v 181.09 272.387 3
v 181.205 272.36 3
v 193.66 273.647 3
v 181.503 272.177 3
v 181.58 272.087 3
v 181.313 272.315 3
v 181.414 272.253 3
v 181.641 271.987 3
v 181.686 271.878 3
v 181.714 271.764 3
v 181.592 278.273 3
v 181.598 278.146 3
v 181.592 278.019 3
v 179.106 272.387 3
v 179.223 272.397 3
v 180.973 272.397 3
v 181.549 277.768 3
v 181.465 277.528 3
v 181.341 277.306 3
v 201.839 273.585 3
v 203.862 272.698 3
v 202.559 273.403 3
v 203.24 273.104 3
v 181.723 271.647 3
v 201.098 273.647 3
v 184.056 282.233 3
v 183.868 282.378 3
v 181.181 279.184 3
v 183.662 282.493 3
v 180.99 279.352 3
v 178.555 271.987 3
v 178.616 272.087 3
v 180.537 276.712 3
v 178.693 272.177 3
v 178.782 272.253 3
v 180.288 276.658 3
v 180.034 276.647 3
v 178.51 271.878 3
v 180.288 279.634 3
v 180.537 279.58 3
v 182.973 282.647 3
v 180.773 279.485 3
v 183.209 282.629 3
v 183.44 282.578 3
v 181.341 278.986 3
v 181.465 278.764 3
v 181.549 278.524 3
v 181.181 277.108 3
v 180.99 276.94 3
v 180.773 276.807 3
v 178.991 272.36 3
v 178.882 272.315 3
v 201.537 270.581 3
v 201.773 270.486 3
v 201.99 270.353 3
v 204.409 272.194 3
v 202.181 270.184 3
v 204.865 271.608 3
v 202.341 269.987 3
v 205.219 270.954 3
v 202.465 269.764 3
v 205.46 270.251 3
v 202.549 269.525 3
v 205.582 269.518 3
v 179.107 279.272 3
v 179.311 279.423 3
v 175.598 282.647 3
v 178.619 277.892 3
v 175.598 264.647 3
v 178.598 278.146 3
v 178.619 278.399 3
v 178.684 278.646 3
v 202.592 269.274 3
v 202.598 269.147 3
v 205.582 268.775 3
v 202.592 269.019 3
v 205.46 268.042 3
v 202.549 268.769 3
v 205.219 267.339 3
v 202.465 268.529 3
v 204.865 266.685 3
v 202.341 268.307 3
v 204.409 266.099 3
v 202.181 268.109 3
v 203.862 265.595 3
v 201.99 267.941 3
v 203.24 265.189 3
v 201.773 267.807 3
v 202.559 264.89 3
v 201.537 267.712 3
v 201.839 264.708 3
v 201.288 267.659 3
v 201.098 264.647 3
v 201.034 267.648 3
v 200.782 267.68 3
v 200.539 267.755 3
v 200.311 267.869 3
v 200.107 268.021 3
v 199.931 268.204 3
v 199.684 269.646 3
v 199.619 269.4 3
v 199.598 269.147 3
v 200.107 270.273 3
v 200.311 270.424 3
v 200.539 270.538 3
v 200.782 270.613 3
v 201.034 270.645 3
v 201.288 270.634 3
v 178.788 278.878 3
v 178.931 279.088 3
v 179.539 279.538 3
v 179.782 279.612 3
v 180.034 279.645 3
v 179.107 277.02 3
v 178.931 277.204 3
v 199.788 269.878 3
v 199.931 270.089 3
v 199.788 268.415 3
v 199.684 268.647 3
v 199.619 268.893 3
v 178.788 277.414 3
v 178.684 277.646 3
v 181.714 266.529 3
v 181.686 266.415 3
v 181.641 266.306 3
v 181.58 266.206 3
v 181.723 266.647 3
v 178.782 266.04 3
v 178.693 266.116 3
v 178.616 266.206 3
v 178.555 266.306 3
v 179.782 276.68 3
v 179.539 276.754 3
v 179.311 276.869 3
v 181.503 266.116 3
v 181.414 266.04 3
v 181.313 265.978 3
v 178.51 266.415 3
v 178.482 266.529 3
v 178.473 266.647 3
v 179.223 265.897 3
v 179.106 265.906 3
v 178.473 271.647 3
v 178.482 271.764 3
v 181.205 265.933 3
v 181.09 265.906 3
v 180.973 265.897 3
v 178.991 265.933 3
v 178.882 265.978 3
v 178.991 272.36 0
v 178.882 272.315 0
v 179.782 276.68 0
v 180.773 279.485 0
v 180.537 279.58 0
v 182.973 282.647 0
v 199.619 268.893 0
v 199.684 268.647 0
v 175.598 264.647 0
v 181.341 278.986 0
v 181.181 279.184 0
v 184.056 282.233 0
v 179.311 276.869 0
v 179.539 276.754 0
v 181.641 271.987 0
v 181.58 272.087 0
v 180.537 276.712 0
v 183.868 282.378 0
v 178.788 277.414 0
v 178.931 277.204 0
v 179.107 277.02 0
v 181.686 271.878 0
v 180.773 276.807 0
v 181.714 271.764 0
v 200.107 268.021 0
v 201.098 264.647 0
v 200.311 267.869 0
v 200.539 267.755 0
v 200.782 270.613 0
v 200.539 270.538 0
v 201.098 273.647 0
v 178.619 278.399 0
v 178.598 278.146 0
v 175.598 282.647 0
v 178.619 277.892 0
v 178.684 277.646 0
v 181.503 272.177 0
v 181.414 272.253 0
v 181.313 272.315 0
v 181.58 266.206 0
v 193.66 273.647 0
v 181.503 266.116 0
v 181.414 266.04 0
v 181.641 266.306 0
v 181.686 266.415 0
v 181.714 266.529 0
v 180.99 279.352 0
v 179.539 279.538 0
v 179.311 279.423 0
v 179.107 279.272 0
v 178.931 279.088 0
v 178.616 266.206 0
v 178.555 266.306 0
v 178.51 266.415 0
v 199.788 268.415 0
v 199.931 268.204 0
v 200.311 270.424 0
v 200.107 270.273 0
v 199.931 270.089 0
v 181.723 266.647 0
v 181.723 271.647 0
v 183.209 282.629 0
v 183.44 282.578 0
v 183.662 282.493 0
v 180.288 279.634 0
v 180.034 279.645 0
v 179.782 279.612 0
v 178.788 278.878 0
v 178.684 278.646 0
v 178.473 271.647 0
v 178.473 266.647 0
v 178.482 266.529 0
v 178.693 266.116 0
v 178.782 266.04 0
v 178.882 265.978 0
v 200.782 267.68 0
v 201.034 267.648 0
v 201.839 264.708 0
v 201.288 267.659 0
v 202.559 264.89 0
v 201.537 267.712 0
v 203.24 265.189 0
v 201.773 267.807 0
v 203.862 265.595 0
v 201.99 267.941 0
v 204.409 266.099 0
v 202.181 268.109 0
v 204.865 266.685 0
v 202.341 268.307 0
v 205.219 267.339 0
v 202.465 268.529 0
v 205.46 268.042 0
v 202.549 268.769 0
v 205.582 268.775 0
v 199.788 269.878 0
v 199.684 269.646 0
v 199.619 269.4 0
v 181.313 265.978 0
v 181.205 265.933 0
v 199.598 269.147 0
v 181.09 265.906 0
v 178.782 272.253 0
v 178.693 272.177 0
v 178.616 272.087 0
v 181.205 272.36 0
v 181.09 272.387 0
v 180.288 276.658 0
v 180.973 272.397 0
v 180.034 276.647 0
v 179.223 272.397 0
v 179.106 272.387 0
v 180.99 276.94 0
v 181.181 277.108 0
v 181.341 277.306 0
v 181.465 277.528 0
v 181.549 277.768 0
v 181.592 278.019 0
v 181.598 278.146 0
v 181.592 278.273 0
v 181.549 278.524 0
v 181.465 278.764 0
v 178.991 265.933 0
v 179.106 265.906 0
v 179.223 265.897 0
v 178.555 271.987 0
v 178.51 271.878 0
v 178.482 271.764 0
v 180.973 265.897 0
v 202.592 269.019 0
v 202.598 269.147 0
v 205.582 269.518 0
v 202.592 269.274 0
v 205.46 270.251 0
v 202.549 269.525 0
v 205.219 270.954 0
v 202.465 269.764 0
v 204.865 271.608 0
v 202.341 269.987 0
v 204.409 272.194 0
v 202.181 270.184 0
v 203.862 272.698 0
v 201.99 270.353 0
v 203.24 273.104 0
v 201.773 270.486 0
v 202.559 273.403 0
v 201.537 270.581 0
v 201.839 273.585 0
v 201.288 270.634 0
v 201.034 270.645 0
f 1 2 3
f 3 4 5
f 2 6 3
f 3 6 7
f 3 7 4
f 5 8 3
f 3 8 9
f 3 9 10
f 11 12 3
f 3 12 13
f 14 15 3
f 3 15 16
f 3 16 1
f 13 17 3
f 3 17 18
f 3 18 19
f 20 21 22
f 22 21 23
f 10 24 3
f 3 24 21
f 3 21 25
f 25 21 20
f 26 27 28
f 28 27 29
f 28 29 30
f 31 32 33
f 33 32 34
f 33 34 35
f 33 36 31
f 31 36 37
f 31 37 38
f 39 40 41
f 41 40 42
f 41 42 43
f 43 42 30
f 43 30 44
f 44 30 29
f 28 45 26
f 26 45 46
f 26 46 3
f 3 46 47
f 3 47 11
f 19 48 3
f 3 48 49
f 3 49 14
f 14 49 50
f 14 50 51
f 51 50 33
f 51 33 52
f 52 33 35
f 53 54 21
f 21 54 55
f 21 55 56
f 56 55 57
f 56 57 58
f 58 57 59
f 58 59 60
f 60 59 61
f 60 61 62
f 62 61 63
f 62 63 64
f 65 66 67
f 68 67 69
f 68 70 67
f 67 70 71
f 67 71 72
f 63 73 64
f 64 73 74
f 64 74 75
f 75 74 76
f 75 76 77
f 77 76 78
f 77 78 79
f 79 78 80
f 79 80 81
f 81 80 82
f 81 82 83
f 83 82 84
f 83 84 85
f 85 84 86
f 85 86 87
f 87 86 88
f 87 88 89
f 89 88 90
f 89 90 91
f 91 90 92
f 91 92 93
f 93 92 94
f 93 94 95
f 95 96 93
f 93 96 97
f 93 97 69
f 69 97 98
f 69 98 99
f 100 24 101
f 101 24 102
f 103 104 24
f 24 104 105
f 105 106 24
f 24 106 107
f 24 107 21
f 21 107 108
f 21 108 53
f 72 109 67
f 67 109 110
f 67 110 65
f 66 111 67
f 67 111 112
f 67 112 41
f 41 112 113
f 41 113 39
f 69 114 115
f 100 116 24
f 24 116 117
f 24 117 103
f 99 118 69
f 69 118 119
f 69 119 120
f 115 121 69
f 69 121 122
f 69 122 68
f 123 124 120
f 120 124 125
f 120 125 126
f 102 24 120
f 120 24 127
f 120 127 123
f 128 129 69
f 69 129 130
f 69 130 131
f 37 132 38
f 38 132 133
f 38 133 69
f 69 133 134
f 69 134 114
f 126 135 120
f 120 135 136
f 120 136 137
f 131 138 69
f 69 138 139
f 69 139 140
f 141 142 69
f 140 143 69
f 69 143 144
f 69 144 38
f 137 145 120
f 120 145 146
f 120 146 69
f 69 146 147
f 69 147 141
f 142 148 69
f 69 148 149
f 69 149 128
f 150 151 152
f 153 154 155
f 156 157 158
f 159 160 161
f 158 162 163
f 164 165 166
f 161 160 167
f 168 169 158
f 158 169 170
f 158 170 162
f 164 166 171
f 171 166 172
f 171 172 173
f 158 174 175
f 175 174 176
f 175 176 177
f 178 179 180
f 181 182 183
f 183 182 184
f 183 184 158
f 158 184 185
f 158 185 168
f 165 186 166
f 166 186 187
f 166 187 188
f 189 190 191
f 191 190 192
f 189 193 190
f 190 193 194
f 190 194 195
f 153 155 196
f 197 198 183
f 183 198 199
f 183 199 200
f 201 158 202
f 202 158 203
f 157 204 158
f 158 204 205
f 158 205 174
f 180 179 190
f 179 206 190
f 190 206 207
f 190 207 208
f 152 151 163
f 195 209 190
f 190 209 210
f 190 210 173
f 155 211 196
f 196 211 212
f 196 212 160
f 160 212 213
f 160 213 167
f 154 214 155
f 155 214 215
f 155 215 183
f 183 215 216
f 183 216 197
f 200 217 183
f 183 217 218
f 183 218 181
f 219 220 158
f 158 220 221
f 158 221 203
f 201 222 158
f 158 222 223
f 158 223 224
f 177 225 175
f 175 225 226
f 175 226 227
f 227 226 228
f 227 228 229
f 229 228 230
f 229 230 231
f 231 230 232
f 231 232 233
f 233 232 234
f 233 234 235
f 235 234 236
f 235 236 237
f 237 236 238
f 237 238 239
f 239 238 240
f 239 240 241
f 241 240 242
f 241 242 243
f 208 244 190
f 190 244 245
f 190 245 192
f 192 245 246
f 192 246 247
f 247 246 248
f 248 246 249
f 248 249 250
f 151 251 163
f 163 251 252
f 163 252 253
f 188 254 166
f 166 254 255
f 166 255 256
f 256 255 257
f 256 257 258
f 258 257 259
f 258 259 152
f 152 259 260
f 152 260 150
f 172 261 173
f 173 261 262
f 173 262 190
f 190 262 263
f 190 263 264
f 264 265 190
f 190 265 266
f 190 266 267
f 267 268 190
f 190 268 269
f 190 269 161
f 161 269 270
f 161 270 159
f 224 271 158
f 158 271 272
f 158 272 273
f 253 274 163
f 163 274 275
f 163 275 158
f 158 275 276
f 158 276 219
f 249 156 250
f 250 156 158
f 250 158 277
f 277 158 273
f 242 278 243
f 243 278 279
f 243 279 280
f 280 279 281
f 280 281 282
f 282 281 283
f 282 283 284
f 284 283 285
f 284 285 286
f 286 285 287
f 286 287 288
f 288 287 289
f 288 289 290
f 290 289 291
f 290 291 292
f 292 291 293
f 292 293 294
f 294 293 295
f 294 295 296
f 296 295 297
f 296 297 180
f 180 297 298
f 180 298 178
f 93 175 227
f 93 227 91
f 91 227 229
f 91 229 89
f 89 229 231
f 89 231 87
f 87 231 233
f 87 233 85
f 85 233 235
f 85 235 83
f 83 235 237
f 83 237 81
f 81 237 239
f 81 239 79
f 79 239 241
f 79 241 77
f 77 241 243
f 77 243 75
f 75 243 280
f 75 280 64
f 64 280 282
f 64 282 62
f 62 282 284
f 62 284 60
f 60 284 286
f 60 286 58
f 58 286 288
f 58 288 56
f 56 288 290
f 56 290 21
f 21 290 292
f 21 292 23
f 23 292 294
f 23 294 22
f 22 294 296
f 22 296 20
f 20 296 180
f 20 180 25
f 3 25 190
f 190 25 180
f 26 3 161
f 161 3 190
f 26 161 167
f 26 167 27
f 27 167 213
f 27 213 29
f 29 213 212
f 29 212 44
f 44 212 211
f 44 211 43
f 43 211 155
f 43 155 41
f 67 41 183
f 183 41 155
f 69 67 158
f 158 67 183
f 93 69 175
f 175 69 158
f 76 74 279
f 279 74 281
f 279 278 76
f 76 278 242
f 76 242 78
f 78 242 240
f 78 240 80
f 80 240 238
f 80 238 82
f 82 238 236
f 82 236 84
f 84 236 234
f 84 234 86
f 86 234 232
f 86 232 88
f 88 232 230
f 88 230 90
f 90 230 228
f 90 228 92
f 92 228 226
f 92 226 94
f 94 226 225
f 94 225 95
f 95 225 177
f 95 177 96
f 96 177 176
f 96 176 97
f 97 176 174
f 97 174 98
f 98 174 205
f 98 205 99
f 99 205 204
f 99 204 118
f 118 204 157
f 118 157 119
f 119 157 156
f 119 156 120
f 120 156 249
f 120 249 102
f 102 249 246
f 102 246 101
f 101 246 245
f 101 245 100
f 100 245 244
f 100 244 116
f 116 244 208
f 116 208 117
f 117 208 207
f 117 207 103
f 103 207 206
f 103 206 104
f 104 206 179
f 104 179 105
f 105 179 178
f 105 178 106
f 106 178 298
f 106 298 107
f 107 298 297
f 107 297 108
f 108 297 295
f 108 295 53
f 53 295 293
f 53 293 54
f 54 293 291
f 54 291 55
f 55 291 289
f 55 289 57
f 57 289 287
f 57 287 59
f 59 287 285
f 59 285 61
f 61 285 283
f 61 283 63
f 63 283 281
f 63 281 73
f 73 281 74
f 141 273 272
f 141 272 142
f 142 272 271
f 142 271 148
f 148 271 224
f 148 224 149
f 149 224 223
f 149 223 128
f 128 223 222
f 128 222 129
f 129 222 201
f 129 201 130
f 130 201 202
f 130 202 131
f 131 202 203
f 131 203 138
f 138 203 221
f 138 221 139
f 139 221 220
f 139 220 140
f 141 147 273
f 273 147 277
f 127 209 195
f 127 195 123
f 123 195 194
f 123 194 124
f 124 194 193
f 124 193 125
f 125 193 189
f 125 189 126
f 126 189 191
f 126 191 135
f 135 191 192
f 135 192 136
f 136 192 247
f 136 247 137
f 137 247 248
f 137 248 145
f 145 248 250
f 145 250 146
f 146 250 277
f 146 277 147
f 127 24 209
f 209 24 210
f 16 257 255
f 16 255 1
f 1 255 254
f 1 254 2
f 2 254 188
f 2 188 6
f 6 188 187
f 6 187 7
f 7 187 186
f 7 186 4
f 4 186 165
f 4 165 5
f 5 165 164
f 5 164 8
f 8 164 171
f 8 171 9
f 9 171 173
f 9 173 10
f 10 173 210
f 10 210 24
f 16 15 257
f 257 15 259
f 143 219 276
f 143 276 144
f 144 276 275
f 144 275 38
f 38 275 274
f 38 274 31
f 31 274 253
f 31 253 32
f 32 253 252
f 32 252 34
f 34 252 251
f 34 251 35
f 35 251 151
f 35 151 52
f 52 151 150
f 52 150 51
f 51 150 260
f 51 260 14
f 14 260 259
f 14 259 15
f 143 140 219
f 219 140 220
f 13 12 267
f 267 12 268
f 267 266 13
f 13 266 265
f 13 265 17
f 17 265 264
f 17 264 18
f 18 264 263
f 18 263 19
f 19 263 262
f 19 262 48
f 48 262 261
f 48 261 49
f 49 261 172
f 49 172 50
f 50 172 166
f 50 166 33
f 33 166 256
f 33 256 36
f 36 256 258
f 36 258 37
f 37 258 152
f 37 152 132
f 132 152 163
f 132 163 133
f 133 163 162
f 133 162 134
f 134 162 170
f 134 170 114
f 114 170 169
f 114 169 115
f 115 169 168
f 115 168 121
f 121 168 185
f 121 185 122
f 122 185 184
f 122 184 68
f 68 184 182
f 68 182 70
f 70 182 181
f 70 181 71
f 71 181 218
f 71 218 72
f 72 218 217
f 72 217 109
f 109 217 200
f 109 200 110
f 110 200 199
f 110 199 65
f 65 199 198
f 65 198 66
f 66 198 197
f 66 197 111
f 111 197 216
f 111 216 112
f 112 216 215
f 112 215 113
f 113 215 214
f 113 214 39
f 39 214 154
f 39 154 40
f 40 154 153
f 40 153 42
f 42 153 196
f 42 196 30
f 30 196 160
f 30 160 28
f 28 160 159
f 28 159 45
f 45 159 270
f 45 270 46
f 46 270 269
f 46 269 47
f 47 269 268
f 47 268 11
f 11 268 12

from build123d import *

# Parameters (mm, degrees)
MODEL_R                 = 1.5
SALIENTE_EXTRUIR1_DEPTH = 3


with BuildPart() as part:
    # Model → Saliente-Extruir1 (new body)
    with BuildSketch(Plane.XY):
        with BuildLine():
            Line((182.972853309, 282.646547335), (175.597853309, 282.646547335))
            Line((175.597853309, 282.646547335), (175.597853309, 264.646547335))
            Line((175.597853309, 264.646547335), (201.097853309, 264.646547335))
            ThreePointArc((201.097853309, 264.646547335), (205.597853309, 269.146547335), (201.097853309, 273.646547335))
            Line((201.097853309, 273.646547335), (193.660353309, 273.646547335))
            Line((193.660353309, 273.646547335), (184.055904605, 282.233003026))
            ThreePointArc((184.055904605, 282.233003026), (183.552512477, 282.539644911), (182.972853309, 282.646547335))
        make_face()
        with Locations((201.097853309, 269.146547335)):
            Circle(MODEL_R, mode=Mode.SUBTRACT)
        with Locations((180.097853309, 278.145968764)):
            Circle(MODEL_R, mode=Mode.SUBTRACT)
        with BuildLine():
            Line((179.222853309, 265.896547335), (180.972853309, 265.896547335))
            ThreePointArc((180.972853309, 265.896547335), (181.503183395, 266.116217249), (181.722853309, 266.646547335))
            Line((181.722853309, 266.646547335), (181.722853309, 271.646547335))
            ThreePointArc((181.722853309, 271.646547335), (181.503183395, 272.176877421), (180.972853309, 272.396547335))
            Line((180.972853309, 272.396547335), (179.222853309, 272.396547335))
            ThreePointArc((179.222853309, 272.396547335), (178.692523223, 272.176877421), (178.472853309, 271.646547335))
            Line((178.472853309, 271.646547335), (178.472853309, 266.646547335))
            ThreePointArc((178.472853309, 266.646547335), (178.692523223, 266.116217249), (179.222853309, 265.896547335))
        make_face(mode=Mode.SUBTRACT)
    extrude(amount=SALIENTE_EXTRUIR1_DEPTH)


solid = part.part
